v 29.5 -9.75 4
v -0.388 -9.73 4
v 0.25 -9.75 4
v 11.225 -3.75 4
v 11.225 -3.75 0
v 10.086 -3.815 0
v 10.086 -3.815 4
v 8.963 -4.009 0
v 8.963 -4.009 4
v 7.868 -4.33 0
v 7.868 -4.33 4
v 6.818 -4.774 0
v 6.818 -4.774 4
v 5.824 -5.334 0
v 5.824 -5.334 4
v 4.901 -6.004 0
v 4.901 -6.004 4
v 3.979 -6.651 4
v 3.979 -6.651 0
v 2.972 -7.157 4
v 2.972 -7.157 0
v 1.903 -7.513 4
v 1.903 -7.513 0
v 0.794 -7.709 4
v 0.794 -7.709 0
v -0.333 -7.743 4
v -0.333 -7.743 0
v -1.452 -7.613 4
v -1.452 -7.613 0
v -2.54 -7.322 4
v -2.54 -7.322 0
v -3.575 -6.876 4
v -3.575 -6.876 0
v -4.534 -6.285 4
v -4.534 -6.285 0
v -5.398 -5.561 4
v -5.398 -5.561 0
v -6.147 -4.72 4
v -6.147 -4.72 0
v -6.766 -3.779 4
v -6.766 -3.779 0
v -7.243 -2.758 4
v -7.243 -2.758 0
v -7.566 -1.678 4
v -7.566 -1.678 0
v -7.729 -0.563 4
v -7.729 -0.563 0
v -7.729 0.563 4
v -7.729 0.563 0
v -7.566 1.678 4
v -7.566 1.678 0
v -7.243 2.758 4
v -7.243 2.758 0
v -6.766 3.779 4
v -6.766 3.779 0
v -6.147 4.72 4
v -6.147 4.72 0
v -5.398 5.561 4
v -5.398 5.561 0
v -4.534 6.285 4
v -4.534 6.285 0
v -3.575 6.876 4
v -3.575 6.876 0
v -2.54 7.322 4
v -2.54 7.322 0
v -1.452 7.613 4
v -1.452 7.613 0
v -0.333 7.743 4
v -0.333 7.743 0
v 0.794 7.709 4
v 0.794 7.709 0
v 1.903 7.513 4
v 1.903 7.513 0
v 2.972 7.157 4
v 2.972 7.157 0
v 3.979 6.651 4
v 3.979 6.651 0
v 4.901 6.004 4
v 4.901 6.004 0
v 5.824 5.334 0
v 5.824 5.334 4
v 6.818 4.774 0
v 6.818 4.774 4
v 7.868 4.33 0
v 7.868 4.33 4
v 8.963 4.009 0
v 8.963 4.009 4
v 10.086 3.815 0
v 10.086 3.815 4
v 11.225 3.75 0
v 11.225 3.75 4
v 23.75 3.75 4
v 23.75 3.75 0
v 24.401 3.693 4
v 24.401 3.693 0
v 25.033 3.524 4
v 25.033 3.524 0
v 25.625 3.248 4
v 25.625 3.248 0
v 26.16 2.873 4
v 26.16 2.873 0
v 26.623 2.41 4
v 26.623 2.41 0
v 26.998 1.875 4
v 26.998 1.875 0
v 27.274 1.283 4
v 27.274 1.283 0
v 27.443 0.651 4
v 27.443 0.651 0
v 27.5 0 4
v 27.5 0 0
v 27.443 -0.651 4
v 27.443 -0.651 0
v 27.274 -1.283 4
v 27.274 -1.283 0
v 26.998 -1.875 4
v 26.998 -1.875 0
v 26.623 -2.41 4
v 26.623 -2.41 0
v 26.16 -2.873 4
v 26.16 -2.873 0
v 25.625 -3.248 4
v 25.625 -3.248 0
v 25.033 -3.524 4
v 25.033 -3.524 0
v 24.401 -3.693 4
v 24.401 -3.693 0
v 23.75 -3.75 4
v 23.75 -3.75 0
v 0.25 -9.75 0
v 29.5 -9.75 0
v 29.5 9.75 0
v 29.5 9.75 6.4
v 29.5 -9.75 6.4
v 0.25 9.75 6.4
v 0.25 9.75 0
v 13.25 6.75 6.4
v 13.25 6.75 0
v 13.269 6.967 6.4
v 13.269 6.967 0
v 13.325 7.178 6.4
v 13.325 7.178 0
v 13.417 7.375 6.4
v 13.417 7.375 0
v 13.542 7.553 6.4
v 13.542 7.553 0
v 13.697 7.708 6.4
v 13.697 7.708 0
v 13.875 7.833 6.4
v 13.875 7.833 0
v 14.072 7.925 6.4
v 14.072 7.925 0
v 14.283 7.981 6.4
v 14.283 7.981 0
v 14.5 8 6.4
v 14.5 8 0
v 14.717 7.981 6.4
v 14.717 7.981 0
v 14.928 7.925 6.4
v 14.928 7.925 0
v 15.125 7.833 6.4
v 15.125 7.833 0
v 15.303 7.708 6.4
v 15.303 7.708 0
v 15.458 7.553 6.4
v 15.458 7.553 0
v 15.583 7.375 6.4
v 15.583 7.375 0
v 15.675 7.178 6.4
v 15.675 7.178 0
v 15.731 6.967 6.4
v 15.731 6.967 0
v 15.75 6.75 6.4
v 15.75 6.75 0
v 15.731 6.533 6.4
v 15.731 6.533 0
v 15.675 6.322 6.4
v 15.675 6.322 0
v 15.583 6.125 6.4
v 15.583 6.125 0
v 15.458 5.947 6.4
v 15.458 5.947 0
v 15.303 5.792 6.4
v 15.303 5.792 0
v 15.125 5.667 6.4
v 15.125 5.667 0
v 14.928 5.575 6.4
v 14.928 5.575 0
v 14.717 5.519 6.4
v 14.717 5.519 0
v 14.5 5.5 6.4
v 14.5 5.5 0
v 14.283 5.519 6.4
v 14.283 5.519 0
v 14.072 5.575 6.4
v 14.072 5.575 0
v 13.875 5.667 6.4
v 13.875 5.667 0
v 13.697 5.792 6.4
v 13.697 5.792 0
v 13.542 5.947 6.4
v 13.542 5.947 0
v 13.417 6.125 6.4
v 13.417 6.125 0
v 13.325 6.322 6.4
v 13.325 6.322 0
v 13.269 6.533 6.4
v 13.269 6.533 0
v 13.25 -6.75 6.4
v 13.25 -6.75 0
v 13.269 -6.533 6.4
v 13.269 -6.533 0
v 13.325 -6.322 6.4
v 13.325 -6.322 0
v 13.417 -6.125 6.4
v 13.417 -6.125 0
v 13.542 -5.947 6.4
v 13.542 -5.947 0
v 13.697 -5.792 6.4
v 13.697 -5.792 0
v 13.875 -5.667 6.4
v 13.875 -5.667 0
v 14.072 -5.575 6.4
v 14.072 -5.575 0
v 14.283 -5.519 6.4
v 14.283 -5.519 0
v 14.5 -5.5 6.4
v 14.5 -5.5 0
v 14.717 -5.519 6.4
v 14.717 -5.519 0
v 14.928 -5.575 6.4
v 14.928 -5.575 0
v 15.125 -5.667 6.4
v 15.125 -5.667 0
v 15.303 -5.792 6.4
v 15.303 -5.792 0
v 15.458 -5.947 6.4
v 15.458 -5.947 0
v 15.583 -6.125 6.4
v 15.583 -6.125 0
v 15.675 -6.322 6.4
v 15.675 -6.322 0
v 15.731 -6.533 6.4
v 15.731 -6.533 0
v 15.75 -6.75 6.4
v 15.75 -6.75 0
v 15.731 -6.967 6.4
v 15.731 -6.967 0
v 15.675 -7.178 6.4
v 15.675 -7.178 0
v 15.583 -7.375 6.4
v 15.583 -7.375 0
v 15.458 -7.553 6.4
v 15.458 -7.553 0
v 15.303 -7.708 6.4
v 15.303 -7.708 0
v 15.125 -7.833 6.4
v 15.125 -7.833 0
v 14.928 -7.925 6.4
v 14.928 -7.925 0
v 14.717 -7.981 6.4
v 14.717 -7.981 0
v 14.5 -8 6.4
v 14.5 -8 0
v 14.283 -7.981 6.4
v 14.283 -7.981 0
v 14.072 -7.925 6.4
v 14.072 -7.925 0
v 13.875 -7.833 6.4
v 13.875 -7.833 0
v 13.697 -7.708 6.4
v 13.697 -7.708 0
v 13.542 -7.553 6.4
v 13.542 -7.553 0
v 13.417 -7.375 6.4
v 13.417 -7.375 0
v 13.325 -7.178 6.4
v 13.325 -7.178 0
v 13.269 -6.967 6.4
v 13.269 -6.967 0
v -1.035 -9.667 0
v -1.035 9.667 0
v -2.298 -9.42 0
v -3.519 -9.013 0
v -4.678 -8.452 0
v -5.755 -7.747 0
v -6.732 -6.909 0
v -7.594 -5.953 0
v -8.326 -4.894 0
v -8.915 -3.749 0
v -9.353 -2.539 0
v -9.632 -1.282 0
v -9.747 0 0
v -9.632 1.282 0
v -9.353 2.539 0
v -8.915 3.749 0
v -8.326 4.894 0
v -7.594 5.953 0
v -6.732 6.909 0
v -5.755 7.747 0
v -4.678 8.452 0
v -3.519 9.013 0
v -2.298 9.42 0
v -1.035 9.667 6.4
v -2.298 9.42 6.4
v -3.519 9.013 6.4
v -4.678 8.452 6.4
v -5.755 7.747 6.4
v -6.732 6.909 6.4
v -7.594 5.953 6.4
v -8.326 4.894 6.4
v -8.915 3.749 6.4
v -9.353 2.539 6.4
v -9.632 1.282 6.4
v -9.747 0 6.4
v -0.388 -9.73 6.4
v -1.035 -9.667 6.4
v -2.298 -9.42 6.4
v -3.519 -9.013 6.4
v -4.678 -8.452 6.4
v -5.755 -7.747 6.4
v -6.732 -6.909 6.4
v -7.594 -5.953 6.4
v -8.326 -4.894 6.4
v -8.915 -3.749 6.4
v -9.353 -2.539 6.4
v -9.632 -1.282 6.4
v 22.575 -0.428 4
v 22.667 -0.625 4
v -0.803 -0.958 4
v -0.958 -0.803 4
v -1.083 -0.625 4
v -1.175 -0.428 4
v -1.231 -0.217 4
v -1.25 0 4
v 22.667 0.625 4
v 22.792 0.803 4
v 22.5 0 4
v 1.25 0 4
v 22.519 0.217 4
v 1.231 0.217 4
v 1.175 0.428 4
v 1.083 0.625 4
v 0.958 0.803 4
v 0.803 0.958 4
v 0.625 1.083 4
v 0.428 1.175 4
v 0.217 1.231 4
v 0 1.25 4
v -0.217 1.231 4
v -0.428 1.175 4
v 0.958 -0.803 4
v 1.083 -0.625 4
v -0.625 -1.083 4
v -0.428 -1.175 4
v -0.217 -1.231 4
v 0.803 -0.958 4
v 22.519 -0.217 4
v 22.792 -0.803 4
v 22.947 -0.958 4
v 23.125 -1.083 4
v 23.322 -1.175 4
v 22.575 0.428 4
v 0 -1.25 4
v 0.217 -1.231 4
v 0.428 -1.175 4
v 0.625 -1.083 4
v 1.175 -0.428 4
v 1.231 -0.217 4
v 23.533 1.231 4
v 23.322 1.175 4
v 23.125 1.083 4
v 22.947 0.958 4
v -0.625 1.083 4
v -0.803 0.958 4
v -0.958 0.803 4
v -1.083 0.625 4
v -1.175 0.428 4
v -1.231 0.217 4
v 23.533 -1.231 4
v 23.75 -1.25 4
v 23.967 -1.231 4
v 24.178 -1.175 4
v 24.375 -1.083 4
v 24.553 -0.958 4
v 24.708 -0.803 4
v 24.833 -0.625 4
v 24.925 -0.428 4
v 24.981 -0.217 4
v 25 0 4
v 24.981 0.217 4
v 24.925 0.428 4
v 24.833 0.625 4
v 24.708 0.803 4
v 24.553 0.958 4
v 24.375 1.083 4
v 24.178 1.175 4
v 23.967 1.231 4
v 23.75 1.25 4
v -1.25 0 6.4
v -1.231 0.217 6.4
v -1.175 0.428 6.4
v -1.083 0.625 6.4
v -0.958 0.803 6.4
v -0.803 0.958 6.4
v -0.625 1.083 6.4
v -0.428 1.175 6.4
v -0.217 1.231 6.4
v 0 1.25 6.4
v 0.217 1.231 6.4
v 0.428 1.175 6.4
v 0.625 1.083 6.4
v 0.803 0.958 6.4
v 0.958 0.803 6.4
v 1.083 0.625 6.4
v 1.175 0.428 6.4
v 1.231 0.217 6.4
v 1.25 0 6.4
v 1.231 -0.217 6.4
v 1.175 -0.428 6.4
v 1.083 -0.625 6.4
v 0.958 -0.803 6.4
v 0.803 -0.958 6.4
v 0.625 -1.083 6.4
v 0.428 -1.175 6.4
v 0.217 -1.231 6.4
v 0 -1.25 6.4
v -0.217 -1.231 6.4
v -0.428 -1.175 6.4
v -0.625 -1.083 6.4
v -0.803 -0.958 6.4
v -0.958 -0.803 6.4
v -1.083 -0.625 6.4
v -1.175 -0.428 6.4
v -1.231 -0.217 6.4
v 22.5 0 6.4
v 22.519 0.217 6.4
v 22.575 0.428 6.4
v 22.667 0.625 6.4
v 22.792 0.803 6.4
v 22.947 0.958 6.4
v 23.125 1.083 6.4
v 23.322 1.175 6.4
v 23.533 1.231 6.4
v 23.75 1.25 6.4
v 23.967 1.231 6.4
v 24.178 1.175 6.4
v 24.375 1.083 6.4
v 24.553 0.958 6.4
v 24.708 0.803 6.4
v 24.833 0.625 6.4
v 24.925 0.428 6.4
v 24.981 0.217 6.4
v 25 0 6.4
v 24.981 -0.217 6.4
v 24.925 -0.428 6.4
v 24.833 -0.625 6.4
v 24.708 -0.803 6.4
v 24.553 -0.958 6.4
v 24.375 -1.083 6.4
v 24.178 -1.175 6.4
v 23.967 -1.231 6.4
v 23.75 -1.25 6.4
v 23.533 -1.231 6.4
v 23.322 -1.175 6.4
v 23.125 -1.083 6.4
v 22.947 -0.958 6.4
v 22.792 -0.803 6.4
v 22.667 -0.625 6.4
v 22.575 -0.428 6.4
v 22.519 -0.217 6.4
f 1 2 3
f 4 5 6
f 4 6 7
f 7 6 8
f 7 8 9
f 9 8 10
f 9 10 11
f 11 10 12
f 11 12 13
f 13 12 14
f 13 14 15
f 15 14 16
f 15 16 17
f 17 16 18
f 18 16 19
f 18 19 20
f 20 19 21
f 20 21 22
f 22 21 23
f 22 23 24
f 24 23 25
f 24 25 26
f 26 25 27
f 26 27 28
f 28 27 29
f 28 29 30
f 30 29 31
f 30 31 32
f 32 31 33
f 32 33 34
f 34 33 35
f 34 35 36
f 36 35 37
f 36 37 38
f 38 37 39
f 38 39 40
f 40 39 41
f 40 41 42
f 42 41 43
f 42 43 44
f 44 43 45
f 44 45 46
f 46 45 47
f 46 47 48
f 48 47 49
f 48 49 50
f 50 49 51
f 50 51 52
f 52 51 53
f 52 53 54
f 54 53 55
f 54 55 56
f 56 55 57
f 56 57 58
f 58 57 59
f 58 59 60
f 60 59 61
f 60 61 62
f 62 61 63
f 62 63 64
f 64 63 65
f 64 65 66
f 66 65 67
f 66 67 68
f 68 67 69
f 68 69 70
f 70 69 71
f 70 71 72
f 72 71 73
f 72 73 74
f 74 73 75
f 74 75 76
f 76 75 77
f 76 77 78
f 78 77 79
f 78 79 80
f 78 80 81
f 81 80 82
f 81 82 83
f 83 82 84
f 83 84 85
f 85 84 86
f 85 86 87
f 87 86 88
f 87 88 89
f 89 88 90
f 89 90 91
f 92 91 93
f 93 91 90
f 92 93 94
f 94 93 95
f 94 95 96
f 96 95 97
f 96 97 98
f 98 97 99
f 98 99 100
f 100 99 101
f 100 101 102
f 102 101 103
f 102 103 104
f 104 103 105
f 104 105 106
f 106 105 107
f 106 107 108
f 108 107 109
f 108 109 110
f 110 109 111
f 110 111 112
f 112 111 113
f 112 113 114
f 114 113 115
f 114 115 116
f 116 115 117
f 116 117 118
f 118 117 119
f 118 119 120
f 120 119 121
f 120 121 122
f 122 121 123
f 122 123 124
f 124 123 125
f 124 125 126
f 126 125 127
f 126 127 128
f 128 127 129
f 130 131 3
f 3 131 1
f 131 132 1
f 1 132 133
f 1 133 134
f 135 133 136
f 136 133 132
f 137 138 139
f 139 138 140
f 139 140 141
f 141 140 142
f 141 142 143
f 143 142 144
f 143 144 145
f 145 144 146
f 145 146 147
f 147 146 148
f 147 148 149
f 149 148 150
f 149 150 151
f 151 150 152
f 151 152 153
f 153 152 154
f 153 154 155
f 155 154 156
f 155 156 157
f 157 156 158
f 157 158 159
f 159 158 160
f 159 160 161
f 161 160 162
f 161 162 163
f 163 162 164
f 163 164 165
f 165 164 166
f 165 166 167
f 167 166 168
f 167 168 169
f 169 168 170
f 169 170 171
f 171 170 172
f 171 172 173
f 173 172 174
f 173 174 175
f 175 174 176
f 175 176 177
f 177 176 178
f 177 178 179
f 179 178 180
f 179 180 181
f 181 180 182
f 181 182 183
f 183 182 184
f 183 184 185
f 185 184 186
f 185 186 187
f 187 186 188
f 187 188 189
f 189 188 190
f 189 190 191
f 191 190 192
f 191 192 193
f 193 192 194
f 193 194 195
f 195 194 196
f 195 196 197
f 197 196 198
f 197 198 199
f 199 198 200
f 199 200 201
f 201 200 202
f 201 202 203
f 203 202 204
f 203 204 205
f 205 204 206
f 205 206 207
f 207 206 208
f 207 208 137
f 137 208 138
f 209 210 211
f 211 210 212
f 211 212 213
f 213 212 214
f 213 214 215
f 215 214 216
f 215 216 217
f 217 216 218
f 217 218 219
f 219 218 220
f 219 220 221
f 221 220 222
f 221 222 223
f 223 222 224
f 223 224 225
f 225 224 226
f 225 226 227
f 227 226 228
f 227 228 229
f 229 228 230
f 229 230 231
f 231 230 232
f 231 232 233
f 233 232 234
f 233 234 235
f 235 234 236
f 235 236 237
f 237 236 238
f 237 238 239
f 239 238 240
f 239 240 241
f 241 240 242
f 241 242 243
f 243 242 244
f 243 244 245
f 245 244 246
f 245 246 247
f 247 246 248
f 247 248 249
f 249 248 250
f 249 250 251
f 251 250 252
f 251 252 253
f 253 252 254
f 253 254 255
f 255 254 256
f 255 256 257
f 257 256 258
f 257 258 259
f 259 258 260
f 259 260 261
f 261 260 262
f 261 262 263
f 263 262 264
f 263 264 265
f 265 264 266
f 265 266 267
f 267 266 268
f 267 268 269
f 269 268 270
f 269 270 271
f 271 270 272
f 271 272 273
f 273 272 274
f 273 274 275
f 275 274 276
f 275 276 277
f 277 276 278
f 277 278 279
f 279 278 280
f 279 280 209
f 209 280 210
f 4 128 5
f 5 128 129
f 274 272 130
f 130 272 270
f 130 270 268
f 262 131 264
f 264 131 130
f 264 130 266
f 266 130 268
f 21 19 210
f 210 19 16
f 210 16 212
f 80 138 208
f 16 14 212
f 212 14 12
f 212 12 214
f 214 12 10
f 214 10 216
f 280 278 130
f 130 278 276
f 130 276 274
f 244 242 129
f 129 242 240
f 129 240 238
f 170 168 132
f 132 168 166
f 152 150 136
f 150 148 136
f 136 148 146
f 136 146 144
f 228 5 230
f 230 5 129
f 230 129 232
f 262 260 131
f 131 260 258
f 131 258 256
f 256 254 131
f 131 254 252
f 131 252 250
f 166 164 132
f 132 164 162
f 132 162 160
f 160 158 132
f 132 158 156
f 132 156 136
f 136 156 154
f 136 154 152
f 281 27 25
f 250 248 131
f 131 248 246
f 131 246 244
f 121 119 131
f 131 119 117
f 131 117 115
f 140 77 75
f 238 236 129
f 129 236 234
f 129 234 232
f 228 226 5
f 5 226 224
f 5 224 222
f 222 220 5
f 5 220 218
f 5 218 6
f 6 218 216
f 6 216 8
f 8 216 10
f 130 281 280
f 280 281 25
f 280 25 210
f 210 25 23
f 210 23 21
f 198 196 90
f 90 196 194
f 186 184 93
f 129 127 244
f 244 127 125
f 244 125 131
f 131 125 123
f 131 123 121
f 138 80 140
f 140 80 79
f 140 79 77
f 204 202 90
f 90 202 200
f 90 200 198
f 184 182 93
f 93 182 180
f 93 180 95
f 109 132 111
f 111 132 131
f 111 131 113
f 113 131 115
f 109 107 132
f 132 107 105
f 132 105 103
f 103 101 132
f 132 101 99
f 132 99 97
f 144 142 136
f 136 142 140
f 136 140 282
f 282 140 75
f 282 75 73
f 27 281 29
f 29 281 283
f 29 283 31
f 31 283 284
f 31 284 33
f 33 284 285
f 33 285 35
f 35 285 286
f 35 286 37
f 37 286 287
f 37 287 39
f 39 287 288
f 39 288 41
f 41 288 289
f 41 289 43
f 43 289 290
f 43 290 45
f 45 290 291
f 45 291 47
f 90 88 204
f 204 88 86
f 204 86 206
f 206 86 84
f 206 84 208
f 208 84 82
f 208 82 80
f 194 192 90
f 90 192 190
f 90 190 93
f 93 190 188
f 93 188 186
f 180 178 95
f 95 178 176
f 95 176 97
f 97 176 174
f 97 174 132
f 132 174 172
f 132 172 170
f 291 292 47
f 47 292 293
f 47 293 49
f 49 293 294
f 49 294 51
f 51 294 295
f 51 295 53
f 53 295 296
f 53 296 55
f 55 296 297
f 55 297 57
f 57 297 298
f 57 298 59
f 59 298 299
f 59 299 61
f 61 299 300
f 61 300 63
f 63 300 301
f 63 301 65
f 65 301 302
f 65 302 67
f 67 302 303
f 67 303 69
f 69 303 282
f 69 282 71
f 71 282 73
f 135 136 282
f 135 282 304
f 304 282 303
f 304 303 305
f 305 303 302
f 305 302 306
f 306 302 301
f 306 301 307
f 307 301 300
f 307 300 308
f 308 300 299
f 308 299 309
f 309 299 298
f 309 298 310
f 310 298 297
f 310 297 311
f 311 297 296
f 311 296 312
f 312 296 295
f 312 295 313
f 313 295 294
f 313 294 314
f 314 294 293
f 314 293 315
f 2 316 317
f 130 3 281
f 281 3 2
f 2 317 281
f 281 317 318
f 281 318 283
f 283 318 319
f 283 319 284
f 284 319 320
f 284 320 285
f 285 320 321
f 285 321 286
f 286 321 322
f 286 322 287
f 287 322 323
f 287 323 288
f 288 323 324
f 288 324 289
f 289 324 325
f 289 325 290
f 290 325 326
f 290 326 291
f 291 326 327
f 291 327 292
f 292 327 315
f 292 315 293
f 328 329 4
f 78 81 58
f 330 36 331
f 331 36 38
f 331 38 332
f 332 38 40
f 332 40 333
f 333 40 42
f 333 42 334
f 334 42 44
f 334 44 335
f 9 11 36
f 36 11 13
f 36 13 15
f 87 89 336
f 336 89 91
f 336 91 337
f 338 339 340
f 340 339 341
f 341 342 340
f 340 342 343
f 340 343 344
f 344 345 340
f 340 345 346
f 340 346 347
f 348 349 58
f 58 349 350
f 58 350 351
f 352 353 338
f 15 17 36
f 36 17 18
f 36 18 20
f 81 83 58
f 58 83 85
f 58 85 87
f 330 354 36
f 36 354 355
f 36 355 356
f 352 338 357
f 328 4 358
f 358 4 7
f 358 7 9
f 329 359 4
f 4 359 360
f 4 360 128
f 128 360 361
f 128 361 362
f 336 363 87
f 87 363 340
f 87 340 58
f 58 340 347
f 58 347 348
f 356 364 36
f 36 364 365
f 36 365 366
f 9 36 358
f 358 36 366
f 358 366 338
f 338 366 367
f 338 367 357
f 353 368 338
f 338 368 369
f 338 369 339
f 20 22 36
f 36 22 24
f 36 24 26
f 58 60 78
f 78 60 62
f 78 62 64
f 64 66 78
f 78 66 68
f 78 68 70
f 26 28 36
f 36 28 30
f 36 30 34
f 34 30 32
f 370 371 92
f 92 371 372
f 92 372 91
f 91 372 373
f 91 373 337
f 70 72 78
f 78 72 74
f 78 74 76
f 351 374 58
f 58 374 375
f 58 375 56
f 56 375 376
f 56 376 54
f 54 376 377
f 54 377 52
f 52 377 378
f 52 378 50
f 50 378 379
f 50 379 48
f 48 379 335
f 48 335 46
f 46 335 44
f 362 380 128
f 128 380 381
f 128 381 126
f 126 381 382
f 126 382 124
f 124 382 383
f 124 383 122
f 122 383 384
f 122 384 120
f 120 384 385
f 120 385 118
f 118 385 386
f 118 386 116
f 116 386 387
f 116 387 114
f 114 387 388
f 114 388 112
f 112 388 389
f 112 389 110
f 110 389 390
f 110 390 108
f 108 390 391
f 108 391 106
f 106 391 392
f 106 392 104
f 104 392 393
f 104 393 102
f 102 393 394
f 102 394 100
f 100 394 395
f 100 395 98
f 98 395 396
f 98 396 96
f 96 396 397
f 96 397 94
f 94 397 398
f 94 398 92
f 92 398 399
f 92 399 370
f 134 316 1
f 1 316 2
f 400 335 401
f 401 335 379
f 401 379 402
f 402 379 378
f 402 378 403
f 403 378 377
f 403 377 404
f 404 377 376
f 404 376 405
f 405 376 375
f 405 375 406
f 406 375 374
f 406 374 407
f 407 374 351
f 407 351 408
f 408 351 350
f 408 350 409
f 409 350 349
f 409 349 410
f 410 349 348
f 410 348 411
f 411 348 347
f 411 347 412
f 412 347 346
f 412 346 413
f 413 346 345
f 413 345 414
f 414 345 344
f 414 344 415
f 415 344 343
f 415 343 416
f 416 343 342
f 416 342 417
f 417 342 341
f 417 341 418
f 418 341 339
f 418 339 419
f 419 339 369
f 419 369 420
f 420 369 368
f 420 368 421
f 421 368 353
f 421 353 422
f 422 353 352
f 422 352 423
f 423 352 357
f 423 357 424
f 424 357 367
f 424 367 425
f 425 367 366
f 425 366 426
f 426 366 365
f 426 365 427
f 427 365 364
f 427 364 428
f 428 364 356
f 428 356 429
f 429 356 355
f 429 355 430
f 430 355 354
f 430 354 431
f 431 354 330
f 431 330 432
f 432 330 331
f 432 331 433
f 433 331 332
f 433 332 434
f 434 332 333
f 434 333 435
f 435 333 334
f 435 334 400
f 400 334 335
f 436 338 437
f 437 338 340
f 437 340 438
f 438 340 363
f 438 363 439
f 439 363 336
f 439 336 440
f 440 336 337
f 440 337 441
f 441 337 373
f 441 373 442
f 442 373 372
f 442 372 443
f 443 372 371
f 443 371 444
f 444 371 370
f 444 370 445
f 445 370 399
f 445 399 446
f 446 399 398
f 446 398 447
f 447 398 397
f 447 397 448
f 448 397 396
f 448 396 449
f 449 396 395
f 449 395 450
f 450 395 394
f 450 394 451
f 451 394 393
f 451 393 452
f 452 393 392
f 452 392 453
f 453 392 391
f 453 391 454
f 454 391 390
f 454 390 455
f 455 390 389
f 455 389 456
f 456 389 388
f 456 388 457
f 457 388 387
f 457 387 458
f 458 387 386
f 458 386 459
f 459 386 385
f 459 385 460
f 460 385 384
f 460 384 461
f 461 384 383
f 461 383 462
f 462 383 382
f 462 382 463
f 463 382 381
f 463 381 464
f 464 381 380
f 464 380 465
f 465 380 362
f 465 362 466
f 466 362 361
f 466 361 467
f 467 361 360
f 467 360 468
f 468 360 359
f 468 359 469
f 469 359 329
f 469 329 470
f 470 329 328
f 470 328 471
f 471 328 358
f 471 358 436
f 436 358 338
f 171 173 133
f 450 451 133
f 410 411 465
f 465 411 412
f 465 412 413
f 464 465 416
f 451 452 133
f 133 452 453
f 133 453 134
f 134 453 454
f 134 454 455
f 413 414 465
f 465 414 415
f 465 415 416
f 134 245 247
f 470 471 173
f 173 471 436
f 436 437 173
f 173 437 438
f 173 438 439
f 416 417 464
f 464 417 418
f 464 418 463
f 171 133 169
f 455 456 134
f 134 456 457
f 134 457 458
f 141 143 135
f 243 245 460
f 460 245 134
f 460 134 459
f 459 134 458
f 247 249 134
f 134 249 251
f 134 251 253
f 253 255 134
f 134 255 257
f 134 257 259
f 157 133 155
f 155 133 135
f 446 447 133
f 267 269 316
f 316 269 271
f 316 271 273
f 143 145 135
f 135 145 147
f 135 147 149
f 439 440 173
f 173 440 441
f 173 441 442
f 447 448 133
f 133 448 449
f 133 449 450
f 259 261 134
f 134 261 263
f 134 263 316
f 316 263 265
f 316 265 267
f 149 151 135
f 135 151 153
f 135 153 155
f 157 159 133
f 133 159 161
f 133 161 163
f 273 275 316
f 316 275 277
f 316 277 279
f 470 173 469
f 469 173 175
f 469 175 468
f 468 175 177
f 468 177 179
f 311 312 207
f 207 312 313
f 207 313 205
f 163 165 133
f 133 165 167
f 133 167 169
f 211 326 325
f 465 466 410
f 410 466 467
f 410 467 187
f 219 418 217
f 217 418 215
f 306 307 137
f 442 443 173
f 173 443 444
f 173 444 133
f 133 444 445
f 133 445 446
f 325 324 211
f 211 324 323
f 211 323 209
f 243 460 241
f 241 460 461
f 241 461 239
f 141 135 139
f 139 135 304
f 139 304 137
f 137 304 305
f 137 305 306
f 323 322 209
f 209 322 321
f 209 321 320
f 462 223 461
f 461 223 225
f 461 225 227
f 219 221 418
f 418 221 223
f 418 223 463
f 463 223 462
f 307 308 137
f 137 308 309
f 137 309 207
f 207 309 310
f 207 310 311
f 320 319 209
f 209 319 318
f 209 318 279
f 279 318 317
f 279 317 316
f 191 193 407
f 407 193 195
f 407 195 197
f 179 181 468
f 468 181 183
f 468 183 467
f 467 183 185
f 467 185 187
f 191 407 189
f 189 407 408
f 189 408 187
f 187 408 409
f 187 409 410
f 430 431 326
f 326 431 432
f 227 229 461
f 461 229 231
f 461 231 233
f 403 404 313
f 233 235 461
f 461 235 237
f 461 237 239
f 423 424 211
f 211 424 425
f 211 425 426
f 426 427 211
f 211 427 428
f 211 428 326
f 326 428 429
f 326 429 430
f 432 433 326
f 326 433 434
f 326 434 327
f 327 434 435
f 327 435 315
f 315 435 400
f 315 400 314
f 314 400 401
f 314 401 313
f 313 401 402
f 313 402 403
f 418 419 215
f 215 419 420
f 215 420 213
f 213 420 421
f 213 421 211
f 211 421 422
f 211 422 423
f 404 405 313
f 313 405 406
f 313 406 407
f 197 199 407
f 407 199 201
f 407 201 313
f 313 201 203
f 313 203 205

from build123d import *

# Parameters (mm, degrees)
SKETCH1_R           = 1.25
BOSS_EXTRUDE4_DEPTH = 4
FILLET1_R           = 10
SKETCH2_R           = 1.25
BOSS_EXTRUDE5_DEPTH = 1.2
SKETCH3_R           = 1.25
BOSS_EXTRUDE6_DEPTH = 1.2


with BuildPart() as part:
    # Sketch1 → Boss-Extrude4 (new body)
    with BuildSketch(Plane.XY):
        Polygon((-9.75, 9.75), (-9.75, 0), (-9.75, -9.75), (29.5, -9.75), (29.5, -6.75), (29.5, 6.75), (29.5, 9.75), align=None)
        with Locations((14.5, -6.75)):
            Circle(SKETCH1_R, mode=Mode.SUBTRACT)
        with BuildLine():
            ThreePointArc((4.901044183, -6.003521127), (-3.322604971, -7.001628111), (-7.75, 0))
            ThreePointArc((-7.75, 0), (-3.322604971, 7.001628111), (4.901044183, 6.003521127))
            ThreePointArc((4.901044183, 6.003521127), (7.868246727, 4.330212616), (11.22497216, 3.75))
            Line((11.22497216, 3.75), (23.75, 3.75))
            ThreePointArc((23.75, 3.75), (26.401650429, 2.651650429), (27.5, 0))
            ThreePointArc((27.5, 0), (26.401650429, -2.651650429), (23.75, -3.75))
            Line((23.75, -3.75), (11.22497216, -3.75))
            ThreePointArc((11.22497216, -3.75), (7.868246727, -4.330212616), (4.901044183, -6.003521127))
        make_face(mode=Mode.SUBTRACT)
        with Locations((14.5, 6.75)):
            Circle(SKETCH1_R, mode=Mode.SUBTRACT)
    extrude(amount=BOSS_EXTRUDE4_DEPTH)

    # Fillet1
    # the kernel refuses this fillet: 10 mm, written as the material it takes off along each edge
    with BuildSketch(Plane(origin=(-9.75, -9.75, -25), x_dir=(0, 1, 0), z_dir=(0, 0, 1))) as fillet1_piece_1:
        with BuildLine():
            CenterArc((FILLET1_R, -FILLET1_R), FILLET1_R, 90, 90)
            Line((0, -FILLET1_R), (0, 0))
            Line((0, 0), (FILLET1_R, 0))
        make_face()
    extrude(amount=54, mode=Mode.SUBTRACT)
    with BuildSketch(Plane(origin=(-9.75, 9.75, -25), x_dir=(0, -1, 0), z_dir=(0, 0, 1))) as fillet1_piece_2:
        with BuildLine():
            CenterArc((FILLET1_R, FILLET1_R), FILLET1_R, 180, 90)
            Line((0, FILLET1_R), (0, 0))
            Line((0, 0), (FILLET1_R, 0))
        make_face()
    extrude(amount=54, mode=Mode.SUBTRACT)

    # Sketch2 → Boss-Extrude5 (add)
    # profile 1 of 4: a face of its own
    with BuildSketch(Plane.XY.offset(4)):
        with BuildLine():
            ThreePointArc((8.882472313, 4.028236041), (5.388428188, 8.129565896), (0.25, 9.75))
            ThreePointArc((0.25, 9.75), (-6.732120022, 6.908910532), (-9.746874512, 0))
            ThreePointArc((-9.746874512, 0), (-6.957195545, -6.682267477), (-0.388423062, -9.729599992))
            Line((-0.388423062, -9.729599992), (0.667724562, -9.730320853))
            ThreePointArc((0.667724562, -9.730320853), (5.561475334, -8.012177738), (8.882472313, -4.028236041))
            ThreePointArc((8.882472313, -4.028236041), (6.780629621, -4.791885277), (4.901044183, -6.003521127))
            ThreePointArc((4.901044183, -6.003521127), (-7.75, 0), (4.901044183, 6.003521127))
            ThreePointArc((4.901044183, 6.003521127), (6.780629621, 4.791885277), (8.882472313, 4.028236041))
        make_face()
    # profile 2 of 4: a face of its own
    with BuildSketch(Plane.XY.offset(4)):
        with BuildLine():
            ThreePointArc((9.753204602, 0), (9.5330365, 2.060634631), (8.882472313, 4.028236041))
            ThreePointArc((8.882472313, 4.028236041), (6.780629621, 4.791885277), (4.901044183, 6.003521127))
            ThreePointArc((4.901044183, 6.003521127), (-7.75, 0), (4.901044183, -6.003521127))
            ThreePointArc((4.901044183, -6.003521127), (6.780629621, -4.791885277), (8.882472313, -4.028236041))
            ThreePointArc((8.882472313, -4.028236041), (9.5330365, -2.060634631), (9.753204602, 0))
        make_face()
        Circle(SKETCH2_R, mode=Mode.SUBTRACT)
    # profile 3 of 4: a face of its own
    with BuildSketch(Plane.XY.offset(4)):
        with BuildLine():
            Line((29.5, -9.75), (29.5, 9.75))
            Line((29.5, 9.75), (0.25, 9.75))
            ThreePointArc((0.25, 9.75), (5.388428188, 8.129565896), (8.882472313, 4.028236041))
            ThreePointArc((8.882472313, 4.028236041), (10.045489135, 3.819802631), (11.22497216, 3.75))
            Line((11.22497216, 3.75), (23.75, 3.75))
            ThreePointArc((23.75, 3.75), (27.5, 0), (23.75, -3.75))
            Line((23.75, -3.75), (11.22497216, -3.75))
            ThreePointArc((11.22497216, -3.75), (10.045489135, -3.819802631), (8.882472313, -4.028236041))
            ThreePointArc((8.882472313, -4.028236041), (5.561475334, -8.012177738), (0.667724562, -9.730320853))
            Line((0.667724562, -9.730320853), (29.5, -9.75))
        make_face()
        with Locations((14.5, -6.75)):
            Circle(SKETCH2_R, mode=Mode.SUBTRACT)
        with Locations((14.5, 6.75)):
            Circle(SKETCH2_R, mode=Mode.SUBTRACT)
    # profile 4 of 4: a face of its own
    with BuildSketch(Plane.XY.offset(4)):
        with BuildLine():
            ThreePointArc((11.22497216, 3.75), (10.045489135, 3.819802631), (8.882472313, 4.028236041))
            ThreePointArc((8.882472313, 4.028236041), (9.5330365, 2.060634631), (9.753204602, 0))
            ThreePointArc((9.753204602, 0), (9.5330365, -2.060634631), (8.882472313, -4.028236041))
            ThreePointArc((8.882472313, -4.028236041), (10.045489135, -3.819802631), (11.22497216, -3.75))
            Line((11.22497216, -3.75), (23.75, -3.75))
            ThreePointArc((23.75, -3.75), (27.5, 0), (23.75, 3.75))
            Line((23.75, 3.75), (11.22497216, 3.75))
        make_face()
        with Locations((23.75, 0)):
            Circle(SKETCH2_R, mode=Mode.SUBTRACT)
    extrude(amount=BOSS_EXTRUDE5_DEPTH)

    # Sketch3 → Boss-Extrude6 (add)
    # profile 1 of 2: a face of its own
    with BuildSketch(Plane.XY.offset(5.2)):
        with BuildLine():
            ThreePointArc((9.75, 0), (6.938066581, 6.850235917), (0.124208797, 9.749208797))
            ThreePointArc((0.124208797, 9.749208797), (-6.777009203, 6.864853594), (-9.746874512, 0))
            ThreePointArc((-9.746874512, 0), (-6.957195545, -6.682267477), (-0.388423062, -9.729599992))
            Line((-0.388423062, -9.729599992), (0.619672772, -9.730288056))
            ThreePointArc((0.619672772, -9.730288056), (7.110003851, -6.671607395), (9.75, 0))
        make_face()
        Circle(SKETCH3_R, mode=Mode.SUBTRACT)
    # profile 2 of 2: a face of its own
    with BuildSketch(Plane.XY.offset(5.2)):
        with BuildLine():
            Line((29.5, 9.75), (0.25, 9.75))
            ThreePointArc((0.25, 9.75), (0.187103155, 9.749802197), (0.124208797, 9.749208797))
            ThreePointArc((0.124208797, 9.749208797), (6.938066581, 6.850235917), (9.75, 0))
            ThreePointArc((9.75, 0), (7.110003851, -6.671607395), (0.619672772, -9.730288056))
            Line((0.619672772, -9.730288056), (29.5, -9.75))
            Line((29.5, -9.75), (29.5, 9.75))
        make_face()
        with Locations((14.5, -6.75)):
            Circle(SKETCH3_R, mode=Mode.SUBTRACT)
        with Locations((23.75, 0)):
            Circle(SKETCH3_R, mode=Mode.SUBTRACT)
        with Locations((14.5, 6.75)):
            Circle(SKETCH3_R, mode=Mode.SUBTRACT)
    extrude(amount=BOSS_EXTRUDE6_DEPTH)


solid = part.part
